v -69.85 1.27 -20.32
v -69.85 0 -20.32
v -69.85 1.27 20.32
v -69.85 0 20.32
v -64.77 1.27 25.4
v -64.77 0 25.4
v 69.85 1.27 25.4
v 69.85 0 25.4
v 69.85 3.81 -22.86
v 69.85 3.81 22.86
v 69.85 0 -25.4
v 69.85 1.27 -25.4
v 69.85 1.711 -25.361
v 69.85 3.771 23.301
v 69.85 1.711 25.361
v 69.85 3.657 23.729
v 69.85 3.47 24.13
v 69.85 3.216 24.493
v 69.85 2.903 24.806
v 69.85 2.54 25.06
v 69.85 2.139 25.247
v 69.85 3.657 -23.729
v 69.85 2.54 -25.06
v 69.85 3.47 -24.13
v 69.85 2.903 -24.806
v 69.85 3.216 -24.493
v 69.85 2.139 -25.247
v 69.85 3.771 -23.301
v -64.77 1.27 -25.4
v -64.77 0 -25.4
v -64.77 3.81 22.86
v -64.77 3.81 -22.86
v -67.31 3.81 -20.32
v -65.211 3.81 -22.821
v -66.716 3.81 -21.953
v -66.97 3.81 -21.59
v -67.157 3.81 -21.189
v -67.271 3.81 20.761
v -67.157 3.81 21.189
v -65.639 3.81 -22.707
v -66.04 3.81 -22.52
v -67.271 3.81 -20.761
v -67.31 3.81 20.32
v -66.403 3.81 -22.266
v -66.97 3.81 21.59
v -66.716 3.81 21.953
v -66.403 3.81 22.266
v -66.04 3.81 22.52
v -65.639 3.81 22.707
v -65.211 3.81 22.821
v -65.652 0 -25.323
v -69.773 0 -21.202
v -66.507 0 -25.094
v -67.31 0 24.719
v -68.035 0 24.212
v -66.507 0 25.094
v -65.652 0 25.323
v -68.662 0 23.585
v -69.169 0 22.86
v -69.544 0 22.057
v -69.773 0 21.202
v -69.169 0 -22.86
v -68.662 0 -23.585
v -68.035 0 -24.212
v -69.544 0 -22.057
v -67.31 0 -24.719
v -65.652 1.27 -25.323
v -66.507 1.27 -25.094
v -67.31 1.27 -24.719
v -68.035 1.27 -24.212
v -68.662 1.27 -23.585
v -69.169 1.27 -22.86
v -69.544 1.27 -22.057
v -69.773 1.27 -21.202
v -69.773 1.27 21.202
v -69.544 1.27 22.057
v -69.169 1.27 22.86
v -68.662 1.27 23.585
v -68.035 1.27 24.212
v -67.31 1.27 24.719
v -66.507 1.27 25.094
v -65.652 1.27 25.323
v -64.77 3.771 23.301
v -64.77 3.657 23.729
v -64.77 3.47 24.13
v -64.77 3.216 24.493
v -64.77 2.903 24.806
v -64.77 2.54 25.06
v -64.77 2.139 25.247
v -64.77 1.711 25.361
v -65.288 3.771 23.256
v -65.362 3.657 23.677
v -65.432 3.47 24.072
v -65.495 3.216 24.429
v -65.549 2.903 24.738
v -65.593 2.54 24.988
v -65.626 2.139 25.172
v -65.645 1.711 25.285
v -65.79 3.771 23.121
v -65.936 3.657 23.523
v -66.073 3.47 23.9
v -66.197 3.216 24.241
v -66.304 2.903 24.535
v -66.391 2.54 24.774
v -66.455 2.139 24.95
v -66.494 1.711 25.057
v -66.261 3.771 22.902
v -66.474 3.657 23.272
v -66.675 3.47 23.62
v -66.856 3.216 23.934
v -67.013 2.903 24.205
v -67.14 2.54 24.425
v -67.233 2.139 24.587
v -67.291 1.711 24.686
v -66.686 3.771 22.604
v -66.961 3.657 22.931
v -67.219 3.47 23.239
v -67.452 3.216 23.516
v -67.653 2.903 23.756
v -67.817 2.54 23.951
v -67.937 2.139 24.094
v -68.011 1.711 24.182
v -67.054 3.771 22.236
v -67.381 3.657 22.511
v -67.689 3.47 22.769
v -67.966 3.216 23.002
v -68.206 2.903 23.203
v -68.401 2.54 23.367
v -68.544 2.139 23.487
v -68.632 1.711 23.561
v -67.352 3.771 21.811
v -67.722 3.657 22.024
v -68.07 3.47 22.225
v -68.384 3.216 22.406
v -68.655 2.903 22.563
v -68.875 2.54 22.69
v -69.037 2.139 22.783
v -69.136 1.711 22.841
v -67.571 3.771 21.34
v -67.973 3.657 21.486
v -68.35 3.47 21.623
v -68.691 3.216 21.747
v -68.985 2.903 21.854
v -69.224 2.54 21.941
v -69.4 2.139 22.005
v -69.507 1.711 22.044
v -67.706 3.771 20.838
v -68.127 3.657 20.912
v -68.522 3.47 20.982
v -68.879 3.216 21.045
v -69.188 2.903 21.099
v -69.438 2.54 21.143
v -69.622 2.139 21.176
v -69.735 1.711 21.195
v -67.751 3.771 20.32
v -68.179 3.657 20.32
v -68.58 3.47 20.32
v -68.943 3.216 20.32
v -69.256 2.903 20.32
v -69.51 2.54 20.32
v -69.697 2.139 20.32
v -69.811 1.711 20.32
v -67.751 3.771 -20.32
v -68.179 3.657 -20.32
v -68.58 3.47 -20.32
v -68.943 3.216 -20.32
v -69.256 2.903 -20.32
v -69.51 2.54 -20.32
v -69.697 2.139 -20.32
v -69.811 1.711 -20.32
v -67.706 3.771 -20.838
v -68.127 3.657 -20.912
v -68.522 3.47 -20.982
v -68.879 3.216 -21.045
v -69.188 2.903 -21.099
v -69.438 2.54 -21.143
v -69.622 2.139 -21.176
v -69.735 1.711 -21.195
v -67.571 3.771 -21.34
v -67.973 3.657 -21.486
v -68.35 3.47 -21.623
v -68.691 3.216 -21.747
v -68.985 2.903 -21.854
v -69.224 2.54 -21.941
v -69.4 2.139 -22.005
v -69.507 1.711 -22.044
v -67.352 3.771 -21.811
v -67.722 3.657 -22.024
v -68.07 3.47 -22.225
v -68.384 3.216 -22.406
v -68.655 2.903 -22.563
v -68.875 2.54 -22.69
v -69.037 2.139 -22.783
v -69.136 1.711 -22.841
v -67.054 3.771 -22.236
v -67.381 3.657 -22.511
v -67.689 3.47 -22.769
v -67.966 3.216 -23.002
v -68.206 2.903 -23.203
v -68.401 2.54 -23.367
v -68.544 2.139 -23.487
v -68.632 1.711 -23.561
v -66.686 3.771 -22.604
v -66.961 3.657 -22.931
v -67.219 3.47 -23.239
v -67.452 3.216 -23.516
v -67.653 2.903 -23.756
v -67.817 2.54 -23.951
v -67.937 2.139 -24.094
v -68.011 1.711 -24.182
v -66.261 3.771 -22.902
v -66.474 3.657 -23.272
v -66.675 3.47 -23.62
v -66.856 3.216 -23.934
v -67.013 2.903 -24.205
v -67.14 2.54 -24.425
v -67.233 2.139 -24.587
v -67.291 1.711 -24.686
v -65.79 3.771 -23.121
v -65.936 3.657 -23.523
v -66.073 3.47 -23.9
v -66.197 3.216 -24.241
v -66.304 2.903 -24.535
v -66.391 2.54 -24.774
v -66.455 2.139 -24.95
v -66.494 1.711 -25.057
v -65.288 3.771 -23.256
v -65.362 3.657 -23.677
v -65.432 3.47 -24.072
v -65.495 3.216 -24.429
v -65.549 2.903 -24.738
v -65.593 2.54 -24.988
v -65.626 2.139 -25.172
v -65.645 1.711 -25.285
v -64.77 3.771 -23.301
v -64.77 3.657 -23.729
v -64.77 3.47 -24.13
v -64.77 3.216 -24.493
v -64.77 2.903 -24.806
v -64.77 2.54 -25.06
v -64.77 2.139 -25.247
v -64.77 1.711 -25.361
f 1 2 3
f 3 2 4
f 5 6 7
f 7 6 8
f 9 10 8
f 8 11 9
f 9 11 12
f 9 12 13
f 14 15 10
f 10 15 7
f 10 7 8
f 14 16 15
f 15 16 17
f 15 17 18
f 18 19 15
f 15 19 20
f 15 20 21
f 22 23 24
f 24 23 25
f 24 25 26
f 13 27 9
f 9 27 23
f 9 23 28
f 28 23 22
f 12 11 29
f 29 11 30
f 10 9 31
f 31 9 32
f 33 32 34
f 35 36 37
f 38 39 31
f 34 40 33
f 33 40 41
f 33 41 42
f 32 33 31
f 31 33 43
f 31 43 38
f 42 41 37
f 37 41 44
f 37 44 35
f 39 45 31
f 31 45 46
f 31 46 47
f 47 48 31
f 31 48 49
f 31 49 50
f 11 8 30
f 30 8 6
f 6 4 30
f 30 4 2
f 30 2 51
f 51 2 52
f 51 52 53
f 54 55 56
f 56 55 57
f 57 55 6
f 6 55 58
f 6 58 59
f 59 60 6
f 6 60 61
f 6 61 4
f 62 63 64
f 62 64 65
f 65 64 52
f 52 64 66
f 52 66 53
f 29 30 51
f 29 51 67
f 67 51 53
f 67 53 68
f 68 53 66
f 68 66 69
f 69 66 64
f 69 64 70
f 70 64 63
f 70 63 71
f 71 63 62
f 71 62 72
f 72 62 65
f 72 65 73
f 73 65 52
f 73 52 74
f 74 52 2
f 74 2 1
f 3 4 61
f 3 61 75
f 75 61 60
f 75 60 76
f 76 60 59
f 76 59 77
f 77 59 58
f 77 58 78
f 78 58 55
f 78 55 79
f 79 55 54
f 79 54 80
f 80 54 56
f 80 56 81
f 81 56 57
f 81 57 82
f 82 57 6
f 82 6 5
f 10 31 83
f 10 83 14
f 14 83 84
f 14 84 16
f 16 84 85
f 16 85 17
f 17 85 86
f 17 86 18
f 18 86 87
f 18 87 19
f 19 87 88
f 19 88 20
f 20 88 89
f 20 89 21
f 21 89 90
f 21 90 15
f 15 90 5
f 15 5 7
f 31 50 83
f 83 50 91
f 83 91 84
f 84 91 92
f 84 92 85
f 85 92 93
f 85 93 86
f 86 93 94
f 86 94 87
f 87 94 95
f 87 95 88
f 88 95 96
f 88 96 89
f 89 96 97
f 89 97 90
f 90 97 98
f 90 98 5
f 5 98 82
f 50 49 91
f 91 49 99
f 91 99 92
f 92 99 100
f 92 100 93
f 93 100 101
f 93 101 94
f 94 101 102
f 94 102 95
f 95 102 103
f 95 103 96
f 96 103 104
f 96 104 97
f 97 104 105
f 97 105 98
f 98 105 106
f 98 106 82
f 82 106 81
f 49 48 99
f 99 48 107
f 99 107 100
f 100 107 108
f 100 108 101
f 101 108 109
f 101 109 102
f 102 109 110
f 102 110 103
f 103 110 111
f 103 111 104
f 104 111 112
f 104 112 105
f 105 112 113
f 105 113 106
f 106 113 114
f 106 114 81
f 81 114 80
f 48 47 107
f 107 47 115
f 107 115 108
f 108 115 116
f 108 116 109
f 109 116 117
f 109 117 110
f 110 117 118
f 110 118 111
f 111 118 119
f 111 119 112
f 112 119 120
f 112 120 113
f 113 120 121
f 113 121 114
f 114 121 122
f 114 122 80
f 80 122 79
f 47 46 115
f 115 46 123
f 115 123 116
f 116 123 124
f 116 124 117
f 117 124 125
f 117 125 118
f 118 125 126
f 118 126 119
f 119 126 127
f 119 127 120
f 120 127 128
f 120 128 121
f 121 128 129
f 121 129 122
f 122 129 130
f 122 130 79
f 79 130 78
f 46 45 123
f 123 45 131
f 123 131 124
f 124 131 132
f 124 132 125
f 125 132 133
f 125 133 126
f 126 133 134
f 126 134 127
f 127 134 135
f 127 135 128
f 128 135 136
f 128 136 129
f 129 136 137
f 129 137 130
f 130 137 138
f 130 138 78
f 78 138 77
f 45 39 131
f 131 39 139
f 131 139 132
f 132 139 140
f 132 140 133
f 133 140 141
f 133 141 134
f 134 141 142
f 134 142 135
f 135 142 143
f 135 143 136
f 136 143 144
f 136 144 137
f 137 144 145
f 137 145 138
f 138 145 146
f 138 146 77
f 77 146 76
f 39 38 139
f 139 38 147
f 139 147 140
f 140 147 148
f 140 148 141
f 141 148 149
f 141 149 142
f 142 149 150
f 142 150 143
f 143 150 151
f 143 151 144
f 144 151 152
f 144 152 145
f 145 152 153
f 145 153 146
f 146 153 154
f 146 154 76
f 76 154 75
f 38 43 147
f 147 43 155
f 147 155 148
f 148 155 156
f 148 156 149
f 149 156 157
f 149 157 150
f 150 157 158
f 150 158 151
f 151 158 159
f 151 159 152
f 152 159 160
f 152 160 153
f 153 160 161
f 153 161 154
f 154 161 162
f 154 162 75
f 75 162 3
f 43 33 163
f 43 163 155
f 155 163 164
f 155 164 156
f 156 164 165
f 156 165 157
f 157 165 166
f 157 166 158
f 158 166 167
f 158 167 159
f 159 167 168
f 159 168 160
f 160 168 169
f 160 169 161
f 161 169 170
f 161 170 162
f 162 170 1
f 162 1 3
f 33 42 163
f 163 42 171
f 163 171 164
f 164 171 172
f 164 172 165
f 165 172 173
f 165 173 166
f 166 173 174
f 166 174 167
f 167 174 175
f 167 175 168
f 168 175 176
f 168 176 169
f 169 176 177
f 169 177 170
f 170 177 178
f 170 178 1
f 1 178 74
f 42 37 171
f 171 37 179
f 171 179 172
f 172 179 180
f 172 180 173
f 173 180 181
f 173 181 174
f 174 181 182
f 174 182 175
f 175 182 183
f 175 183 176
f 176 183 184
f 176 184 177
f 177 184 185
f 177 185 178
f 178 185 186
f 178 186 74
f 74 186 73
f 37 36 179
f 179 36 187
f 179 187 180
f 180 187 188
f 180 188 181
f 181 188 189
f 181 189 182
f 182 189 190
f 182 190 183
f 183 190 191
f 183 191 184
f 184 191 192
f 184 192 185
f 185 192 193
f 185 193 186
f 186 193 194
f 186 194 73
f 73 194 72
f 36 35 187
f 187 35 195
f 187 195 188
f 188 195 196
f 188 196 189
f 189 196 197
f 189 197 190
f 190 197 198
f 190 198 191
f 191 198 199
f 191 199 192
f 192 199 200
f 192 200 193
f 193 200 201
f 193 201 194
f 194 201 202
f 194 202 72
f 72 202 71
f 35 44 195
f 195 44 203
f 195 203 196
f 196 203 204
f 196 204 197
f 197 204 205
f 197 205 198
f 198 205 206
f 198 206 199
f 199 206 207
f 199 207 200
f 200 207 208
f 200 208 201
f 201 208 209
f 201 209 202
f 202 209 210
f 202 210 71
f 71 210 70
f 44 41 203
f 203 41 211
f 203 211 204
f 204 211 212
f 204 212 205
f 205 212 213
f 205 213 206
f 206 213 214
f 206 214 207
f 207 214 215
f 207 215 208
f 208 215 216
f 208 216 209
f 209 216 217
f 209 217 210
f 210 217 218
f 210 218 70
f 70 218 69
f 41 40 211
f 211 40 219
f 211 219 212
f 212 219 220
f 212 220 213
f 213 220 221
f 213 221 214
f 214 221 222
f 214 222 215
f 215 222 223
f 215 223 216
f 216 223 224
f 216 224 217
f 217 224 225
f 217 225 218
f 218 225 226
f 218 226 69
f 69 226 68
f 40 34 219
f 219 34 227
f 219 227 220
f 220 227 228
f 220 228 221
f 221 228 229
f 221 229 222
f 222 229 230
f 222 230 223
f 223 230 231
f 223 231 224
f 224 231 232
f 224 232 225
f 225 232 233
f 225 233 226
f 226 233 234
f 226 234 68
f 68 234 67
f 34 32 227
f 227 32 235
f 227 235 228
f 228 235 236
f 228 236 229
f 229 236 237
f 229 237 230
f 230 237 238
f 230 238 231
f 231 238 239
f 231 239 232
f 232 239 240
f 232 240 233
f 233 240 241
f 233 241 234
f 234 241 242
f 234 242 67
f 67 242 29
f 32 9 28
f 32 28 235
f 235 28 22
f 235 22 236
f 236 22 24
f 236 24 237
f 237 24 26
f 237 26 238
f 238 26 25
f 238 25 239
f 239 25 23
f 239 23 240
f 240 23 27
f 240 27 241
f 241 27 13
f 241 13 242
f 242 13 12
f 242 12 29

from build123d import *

# Parameters (mm, degrees)
SKETCH1_W           = 139.7
SKETCH1_H           = 50.8
BOSS_EXTRUDE1_DEPTH = 3.81
FILLET4_R           = 5.08
FILLET5_R           = 2.54


with BuildPart() as part:
    # Sketch1 → Boss-Extrude1 (new body)
    with BuildSketch(Plane(origin=(0, 0, 0), x_dir=(1, 0, 0), z_dir=(0, 1, 0))):
        Rectangle(SKETCH1_W, SKETCH1_H)
    extrude(amount=BOSS_EXTRUDE1_DEPTH)

    # Fillet4
    fillet4_edges = [part.edges().sort_by_distance(p)[0] for p in [
        (-69.85, 1.905, -25.4),
        (-69.85, 1.905, 25.4),
    ]]
    fillet(fillet4_edges, radius=FILLET4_R)

    # Fillet5
    fillet5_edges = [part.edges().sort_by_distance(p)[0] for p in [
        (-69.85, 3.81, 0),
        (2.54, 3.81, -25.4),
        (2.54, 3.81, 25.4),
        (-68.362102448, 3.81, 23.912102448),
        (-68.362102448, 3.81, -23.912102448),
    ]]
    fillet(fillet5_edges, radius=FILLET5_R)


solid = part.part
